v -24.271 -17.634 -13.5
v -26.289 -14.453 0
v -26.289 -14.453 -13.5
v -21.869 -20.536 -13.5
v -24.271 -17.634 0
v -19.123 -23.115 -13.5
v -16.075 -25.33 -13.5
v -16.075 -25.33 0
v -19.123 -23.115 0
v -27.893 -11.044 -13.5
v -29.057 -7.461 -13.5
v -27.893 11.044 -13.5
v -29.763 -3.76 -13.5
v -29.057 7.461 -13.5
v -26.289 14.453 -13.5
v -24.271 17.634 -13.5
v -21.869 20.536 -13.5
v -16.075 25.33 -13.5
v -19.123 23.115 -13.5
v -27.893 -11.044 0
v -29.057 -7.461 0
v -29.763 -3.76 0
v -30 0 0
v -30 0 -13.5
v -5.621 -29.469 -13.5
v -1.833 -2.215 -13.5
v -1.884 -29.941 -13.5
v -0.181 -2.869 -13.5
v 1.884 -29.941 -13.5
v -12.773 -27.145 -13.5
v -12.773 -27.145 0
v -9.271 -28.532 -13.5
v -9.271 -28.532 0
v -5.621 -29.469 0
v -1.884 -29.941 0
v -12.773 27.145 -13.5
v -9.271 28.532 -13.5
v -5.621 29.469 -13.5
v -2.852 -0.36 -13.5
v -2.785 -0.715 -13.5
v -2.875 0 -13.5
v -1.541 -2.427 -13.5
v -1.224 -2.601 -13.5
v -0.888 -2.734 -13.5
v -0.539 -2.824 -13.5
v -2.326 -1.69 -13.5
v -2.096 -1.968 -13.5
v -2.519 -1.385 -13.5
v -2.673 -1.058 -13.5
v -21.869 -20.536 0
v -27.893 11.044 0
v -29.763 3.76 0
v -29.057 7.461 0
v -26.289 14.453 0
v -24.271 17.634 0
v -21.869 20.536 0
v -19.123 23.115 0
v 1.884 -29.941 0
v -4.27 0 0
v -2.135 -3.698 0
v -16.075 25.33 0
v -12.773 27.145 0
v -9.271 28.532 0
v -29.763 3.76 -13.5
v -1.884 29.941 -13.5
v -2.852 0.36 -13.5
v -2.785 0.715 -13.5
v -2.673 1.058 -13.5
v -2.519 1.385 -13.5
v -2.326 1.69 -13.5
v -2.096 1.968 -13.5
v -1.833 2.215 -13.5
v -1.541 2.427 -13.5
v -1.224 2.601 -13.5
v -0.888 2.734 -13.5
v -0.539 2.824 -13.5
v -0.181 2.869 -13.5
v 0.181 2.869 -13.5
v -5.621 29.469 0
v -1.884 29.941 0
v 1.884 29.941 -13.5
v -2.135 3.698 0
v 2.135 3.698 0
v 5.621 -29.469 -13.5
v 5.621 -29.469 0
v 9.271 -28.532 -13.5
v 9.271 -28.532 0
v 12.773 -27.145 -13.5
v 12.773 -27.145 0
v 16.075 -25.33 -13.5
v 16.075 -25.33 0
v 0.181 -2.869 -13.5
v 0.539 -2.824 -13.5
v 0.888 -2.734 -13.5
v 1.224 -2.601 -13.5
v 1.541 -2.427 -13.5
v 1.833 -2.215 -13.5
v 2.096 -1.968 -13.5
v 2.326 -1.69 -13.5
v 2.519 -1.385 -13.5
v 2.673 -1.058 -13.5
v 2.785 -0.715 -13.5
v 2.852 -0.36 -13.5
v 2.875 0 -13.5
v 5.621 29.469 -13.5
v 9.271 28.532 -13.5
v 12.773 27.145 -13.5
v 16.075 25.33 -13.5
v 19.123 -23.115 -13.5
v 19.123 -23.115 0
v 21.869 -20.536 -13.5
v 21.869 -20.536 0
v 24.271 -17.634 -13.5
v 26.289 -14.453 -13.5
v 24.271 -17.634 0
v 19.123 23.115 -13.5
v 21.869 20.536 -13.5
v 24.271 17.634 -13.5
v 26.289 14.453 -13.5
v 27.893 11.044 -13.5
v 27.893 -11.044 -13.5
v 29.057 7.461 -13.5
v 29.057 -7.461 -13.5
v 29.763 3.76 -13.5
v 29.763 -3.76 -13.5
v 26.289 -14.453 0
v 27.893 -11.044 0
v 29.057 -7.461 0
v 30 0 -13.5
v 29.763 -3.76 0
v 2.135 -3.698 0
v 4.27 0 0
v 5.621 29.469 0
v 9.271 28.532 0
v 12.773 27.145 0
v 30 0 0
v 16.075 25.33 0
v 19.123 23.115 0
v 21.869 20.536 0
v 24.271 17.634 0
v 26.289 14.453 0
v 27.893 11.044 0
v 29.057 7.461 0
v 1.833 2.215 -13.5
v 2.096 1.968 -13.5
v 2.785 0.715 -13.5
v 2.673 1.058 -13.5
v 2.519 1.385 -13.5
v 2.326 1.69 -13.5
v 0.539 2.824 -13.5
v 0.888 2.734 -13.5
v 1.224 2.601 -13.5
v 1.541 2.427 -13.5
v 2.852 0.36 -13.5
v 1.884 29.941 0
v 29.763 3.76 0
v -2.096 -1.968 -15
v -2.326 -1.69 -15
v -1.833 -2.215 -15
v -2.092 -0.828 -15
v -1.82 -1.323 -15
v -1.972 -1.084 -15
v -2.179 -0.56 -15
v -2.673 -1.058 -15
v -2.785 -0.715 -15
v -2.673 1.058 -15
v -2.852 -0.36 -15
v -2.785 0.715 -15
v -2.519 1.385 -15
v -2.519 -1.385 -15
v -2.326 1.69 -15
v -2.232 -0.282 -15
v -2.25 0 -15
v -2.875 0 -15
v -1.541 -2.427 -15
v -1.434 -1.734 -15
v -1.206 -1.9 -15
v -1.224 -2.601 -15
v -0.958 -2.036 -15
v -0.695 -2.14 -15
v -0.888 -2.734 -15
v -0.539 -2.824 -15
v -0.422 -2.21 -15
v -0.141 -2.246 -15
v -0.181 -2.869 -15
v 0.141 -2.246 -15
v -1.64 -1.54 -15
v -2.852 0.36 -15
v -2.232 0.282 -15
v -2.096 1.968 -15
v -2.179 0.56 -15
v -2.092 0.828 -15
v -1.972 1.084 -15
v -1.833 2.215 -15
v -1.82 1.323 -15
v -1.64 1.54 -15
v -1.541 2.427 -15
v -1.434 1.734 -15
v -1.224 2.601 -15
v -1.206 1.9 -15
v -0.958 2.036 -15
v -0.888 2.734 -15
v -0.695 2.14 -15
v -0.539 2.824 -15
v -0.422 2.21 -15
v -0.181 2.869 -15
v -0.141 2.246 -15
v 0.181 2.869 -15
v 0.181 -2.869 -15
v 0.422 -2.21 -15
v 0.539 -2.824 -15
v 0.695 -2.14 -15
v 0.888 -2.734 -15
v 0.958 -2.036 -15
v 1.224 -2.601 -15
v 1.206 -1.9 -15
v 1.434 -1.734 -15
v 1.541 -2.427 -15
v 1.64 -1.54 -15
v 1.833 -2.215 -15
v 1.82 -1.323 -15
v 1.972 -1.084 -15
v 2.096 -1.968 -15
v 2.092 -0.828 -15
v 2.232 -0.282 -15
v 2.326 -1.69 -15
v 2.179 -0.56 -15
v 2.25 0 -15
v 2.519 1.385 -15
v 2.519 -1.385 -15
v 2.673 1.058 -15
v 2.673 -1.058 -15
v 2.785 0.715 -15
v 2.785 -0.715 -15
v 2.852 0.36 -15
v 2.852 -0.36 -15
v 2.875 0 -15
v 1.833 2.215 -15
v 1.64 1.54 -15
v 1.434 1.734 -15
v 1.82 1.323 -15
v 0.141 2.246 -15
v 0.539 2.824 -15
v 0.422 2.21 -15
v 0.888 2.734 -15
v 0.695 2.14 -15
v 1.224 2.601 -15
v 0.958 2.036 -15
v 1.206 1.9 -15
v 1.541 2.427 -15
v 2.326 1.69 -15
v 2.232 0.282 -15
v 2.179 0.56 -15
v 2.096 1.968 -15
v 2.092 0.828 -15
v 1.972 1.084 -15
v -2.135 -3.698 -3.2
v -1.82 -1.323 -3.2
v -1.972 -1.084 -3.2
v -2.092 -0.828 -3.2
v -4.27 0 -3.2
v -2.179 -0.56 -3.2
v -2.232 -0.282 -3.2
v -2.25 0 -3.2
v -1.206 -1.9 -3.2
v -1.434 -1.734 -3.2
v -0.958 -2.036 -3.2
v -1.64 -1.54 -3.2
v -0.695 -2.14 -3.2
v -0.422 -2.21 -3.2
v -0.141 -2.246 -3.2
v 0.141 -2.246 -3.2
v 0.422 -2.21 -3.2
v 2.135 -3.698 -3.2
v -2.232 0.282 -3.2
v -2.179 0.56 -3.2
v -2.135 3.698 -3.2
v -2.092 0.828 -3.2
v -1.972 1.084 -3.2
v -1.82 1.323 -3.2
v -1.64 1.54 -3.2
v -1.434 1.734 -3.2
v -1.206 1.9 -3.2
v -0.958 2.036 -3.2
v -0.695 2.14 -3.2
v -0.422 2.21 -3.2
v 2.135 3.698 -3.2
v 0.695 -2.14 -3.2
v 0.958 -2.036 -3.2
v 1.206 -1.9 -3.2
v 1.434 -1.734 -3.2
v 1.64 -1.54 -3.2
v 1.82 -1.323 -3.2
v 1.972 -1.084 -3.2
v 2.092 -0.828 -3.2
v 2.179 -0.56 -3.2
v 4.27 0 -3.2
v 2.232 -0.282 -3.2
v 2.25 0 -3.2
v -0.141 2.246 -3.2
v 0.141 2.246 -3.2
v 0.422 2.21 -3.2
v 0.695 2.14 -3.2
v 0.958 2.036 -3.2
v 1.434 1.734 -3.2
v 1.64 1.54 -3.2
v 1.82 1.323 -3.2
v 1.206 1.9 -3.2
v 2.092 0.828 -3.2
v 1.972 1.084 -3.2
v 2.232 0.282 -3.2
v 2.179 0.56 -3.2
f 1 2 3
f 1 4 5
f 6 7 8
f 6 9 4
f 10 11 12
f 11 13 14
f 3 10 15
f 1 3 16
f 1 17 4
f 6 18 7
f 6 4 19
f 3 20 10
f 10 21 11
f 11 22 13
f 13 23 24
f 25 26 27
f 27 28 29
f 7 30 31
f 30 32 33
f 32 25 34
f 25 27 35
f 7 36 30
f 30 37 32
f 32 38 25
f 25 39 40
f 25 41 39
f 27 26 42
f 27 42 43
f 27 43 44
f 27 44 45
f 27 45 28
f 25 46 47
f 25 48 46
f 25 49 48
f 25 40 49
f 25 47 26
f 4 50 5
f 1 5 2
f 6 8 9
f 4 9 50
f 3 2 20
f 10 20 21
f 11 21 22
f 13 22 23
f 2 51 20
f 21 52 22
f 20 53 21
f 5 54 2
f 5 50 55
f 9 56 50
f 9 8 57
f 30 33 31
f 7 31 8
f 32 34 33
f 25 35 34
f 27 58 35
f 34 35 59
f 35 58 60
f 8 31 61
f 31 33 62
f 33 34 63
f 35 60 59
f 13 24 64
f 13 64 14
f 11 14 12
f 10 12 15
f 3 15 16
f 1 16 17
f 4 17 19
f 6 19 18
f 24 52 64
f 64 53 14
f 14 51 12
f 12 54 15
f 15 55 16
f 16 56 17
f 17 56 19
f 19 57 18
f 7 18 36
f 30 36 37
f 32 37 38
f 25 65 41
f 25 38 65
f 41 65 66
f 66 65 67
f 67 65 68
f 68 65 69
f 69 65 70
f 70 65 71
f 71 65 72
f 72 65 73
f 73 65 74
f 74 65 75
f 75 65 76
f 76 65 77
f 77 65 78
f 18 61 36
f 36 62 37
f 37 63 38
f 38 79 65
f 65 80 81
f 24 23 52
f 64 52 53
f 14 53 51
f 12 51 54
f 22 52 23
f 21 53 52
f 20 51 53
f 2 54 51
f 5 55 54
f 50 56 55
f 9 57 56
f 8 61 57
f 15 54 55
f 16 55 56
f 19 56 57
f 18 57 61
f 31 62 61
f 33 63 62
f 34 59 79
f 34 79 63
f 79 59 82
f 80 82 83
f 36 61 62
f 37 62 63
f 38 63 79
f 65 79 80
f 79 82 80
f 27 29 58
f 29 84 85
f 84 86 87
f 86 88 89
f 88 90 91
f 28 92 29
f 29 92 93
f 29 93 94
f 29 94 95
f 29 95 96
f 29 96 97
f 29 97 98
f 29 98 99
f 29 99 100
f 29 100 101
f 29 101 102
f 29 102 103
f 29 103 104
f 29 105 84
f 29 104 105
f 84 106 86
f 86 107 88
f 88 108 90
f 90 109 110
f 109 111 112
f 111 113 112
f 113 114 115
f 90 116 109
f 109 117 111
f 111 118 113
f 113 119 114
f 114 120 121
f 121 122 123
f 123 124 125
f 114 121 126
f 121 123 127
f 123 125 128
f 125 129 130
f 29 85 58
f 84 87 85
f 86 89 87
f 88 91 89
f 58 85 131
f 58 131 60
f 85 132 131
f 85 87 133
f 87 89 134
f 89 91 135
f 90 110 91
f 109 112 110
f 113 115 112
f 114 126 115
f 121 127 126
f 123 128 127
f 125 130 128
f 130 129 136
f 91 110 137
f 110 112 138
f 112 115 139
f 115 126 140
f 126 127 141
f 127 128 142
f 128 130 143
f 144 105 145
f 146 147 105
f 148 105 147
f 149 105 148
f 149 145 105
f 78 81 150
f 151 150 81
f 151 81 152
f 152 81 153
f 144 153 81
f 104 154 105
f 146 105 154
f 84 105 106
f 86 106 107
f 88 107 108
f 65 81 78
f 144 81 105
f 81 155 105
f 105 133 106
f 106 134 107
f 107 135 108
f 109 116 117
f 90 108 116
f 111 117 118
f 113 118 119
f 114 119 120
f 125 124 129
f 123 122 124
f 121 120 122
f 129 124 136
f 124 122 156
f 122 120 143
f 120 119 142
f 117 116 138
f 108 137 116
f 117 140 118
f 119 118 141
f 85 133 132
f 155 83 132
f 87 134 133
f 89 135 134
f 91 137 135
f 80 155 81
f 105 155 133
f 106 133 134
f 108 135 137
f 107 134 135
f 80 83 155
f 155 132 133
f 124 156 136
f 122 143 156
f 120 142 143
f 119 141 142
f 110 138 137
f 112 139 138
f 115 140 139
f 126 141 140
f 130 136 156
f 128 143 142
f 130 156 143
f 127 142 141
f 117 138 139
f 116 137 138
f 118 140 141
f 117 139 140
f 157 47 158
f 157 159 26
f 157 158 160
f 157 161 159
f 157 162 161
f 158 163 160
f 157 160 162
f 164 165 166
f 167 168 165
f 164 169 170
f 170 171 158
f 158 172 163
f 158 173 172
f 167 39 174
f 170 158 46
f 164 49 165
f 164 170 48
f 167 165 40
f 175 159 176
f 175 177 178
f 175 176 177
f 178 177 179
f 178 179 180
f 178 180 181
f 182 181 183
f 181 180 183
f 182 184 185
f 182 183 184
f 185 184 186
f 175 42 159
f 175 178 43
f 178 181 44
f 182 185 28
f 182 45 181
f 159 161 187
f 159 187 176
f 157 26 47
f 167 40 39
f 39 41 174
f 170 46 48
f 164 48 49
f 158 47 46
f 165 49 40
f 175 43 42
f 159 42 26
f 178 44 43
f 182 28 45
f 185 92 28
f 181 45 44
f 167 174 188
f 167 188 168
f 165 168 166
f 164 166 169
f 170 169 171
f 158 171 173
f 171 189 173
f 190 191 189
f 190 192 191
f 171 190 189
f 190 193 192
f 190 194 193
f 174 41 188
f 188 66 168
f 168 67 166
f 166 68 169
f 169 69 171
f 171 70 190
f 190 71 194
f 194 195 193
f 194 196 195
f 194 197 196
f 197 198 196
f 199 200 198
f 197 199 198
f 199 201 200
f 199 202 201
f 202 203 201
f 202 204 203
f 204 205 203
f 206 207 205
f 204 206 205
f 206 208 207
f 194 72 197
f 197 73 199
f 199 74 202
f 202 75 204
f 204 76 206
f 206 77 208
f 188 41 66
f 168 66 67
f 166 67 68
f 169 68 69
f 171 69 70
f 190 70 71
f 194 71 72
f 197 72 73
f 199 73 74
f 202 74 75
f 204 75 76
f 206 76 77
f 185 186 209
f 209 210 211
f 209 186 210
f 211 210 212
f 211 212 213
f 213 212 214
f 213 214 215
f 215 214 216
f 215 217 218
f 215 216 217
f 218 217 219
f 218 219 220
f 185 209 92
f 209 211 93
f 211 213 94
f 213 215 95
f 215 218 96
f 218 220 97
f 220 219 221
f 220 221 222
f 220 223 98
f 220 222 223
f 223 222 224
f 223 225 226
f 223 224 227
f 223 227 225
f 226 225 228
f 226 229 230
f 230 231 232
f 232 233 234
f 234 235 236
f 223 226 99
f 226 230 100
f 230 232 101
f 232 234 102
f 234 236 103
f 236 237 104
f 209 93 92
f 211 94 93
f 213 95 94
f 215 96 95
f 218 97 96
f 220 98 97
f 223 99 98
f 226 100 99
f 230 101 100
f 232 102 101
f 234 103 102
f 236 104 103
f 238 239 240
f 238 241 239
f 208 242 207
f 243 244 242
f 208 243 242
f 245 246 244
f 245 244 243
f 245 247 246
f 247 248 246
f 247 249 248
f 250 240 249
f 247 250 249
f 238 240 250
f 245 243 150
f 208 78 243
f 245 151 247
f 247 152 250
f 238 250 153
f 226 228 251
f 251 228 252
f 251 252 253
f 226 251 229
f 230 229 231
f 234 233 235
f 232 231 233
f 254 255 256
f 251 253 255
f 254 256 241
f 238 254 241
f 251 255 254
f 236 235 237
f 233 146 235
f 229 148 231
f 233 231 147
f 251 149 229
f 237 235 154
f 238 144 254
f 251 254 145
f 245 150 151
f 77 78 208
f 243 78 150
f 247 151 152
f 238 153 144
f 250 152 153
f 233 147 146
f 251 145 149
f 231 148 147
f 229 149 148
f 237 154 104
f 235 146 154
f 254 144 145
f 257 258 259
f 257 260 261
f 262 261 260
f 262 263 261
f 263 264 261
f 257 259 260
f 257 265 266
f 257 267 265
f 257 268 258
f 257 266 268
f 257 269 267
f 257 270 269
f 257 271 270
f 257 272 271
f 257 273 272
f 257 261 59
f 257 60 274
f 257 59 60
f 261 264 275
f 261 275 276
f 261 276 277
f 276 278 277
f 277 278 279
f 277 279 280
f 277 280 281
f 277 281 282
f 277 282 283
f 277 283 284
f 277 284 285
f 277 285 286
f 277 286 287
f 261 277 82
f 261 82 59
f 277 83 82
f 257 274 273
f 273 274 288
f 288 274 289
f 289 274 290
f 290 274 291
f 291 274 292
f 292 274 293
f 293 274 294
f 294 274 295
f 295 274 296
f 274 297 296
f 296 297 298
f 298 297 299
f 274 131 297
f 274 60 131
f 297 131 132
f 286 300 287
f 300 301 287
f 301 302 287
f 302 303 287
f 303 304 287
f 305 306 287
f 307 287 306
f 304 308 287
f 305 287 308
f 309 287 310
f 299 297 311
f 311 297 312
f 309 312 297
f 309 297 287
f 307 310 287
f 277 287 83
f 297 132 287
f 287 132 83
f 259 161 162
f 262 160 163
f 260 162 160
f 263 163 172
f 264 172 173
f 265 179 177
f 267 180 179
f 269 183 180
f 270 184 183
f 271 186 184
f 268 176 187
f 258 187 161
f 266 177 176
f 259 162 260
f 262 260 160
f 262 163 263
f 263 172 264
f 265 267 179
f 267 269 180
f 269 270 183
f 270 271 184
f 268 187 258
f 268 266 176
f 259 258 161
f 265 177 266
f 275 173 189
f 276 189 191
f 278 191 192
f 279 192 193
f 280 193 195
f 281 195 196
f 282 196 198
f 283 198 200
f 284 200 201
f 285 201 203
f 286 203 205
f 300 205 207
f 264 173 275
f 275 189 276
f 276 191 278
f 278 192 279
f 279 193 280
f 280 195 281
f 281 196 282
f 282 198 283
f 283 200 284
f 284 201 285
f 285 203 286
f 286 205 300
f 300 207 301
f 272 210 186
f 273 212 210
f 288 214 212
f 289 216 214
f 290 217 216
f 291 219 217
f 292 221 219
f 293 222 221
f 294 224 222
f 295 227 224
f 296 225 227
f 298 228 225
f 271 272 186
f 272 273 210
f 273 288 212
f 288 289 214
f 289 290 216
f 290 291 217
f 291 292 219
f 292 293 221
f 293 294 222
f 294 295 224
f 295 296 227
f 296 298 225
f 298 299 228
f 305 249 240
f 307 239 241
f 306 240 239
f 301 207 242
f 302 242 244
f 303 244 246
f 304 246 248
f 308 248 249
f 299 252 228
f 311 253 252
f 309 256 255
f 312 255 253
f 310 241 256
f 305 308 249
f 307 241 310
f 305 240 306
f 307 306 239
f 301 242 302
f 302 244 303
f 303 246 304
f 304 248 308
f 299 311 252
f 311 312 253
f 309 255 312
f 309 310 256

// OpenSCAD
$fn = 50;

difference() {
	union() {
		translate(v = [0, 0, -13.5]) {
			cylinder(h = 13.5, r = 30.0);
		}
		#translate(v = [0, 0, -15.0]) {
			cylinder(h = 15, r = 2.875);
		}
	}
	union() {
		translate(v = [0, 0, 0]) {
			rotate(a = [0, 0, 0]) {
				difference() {
					union() {
						translate(v = [0, 0, -3.2]) {
							linear_extrude(height = 3.2) {
								polygon(points = [[4.2698, 0.0], [2.1349000000000005, 3.697755269078796], [-2.134899999999999, 3.6977552690787965], [-4.2698, 5.228996902999369e-16], [-2.134900000000002, -3.6977552690787956], [2.1348999999999974, -3.697755269078798]]);
							}
						}
					}
					union();
				}
			}
		}
		#translate(v = [0, 0, -100.0]) {
			cylinder(h = 200, r = 2.25);
		}
	}
}
